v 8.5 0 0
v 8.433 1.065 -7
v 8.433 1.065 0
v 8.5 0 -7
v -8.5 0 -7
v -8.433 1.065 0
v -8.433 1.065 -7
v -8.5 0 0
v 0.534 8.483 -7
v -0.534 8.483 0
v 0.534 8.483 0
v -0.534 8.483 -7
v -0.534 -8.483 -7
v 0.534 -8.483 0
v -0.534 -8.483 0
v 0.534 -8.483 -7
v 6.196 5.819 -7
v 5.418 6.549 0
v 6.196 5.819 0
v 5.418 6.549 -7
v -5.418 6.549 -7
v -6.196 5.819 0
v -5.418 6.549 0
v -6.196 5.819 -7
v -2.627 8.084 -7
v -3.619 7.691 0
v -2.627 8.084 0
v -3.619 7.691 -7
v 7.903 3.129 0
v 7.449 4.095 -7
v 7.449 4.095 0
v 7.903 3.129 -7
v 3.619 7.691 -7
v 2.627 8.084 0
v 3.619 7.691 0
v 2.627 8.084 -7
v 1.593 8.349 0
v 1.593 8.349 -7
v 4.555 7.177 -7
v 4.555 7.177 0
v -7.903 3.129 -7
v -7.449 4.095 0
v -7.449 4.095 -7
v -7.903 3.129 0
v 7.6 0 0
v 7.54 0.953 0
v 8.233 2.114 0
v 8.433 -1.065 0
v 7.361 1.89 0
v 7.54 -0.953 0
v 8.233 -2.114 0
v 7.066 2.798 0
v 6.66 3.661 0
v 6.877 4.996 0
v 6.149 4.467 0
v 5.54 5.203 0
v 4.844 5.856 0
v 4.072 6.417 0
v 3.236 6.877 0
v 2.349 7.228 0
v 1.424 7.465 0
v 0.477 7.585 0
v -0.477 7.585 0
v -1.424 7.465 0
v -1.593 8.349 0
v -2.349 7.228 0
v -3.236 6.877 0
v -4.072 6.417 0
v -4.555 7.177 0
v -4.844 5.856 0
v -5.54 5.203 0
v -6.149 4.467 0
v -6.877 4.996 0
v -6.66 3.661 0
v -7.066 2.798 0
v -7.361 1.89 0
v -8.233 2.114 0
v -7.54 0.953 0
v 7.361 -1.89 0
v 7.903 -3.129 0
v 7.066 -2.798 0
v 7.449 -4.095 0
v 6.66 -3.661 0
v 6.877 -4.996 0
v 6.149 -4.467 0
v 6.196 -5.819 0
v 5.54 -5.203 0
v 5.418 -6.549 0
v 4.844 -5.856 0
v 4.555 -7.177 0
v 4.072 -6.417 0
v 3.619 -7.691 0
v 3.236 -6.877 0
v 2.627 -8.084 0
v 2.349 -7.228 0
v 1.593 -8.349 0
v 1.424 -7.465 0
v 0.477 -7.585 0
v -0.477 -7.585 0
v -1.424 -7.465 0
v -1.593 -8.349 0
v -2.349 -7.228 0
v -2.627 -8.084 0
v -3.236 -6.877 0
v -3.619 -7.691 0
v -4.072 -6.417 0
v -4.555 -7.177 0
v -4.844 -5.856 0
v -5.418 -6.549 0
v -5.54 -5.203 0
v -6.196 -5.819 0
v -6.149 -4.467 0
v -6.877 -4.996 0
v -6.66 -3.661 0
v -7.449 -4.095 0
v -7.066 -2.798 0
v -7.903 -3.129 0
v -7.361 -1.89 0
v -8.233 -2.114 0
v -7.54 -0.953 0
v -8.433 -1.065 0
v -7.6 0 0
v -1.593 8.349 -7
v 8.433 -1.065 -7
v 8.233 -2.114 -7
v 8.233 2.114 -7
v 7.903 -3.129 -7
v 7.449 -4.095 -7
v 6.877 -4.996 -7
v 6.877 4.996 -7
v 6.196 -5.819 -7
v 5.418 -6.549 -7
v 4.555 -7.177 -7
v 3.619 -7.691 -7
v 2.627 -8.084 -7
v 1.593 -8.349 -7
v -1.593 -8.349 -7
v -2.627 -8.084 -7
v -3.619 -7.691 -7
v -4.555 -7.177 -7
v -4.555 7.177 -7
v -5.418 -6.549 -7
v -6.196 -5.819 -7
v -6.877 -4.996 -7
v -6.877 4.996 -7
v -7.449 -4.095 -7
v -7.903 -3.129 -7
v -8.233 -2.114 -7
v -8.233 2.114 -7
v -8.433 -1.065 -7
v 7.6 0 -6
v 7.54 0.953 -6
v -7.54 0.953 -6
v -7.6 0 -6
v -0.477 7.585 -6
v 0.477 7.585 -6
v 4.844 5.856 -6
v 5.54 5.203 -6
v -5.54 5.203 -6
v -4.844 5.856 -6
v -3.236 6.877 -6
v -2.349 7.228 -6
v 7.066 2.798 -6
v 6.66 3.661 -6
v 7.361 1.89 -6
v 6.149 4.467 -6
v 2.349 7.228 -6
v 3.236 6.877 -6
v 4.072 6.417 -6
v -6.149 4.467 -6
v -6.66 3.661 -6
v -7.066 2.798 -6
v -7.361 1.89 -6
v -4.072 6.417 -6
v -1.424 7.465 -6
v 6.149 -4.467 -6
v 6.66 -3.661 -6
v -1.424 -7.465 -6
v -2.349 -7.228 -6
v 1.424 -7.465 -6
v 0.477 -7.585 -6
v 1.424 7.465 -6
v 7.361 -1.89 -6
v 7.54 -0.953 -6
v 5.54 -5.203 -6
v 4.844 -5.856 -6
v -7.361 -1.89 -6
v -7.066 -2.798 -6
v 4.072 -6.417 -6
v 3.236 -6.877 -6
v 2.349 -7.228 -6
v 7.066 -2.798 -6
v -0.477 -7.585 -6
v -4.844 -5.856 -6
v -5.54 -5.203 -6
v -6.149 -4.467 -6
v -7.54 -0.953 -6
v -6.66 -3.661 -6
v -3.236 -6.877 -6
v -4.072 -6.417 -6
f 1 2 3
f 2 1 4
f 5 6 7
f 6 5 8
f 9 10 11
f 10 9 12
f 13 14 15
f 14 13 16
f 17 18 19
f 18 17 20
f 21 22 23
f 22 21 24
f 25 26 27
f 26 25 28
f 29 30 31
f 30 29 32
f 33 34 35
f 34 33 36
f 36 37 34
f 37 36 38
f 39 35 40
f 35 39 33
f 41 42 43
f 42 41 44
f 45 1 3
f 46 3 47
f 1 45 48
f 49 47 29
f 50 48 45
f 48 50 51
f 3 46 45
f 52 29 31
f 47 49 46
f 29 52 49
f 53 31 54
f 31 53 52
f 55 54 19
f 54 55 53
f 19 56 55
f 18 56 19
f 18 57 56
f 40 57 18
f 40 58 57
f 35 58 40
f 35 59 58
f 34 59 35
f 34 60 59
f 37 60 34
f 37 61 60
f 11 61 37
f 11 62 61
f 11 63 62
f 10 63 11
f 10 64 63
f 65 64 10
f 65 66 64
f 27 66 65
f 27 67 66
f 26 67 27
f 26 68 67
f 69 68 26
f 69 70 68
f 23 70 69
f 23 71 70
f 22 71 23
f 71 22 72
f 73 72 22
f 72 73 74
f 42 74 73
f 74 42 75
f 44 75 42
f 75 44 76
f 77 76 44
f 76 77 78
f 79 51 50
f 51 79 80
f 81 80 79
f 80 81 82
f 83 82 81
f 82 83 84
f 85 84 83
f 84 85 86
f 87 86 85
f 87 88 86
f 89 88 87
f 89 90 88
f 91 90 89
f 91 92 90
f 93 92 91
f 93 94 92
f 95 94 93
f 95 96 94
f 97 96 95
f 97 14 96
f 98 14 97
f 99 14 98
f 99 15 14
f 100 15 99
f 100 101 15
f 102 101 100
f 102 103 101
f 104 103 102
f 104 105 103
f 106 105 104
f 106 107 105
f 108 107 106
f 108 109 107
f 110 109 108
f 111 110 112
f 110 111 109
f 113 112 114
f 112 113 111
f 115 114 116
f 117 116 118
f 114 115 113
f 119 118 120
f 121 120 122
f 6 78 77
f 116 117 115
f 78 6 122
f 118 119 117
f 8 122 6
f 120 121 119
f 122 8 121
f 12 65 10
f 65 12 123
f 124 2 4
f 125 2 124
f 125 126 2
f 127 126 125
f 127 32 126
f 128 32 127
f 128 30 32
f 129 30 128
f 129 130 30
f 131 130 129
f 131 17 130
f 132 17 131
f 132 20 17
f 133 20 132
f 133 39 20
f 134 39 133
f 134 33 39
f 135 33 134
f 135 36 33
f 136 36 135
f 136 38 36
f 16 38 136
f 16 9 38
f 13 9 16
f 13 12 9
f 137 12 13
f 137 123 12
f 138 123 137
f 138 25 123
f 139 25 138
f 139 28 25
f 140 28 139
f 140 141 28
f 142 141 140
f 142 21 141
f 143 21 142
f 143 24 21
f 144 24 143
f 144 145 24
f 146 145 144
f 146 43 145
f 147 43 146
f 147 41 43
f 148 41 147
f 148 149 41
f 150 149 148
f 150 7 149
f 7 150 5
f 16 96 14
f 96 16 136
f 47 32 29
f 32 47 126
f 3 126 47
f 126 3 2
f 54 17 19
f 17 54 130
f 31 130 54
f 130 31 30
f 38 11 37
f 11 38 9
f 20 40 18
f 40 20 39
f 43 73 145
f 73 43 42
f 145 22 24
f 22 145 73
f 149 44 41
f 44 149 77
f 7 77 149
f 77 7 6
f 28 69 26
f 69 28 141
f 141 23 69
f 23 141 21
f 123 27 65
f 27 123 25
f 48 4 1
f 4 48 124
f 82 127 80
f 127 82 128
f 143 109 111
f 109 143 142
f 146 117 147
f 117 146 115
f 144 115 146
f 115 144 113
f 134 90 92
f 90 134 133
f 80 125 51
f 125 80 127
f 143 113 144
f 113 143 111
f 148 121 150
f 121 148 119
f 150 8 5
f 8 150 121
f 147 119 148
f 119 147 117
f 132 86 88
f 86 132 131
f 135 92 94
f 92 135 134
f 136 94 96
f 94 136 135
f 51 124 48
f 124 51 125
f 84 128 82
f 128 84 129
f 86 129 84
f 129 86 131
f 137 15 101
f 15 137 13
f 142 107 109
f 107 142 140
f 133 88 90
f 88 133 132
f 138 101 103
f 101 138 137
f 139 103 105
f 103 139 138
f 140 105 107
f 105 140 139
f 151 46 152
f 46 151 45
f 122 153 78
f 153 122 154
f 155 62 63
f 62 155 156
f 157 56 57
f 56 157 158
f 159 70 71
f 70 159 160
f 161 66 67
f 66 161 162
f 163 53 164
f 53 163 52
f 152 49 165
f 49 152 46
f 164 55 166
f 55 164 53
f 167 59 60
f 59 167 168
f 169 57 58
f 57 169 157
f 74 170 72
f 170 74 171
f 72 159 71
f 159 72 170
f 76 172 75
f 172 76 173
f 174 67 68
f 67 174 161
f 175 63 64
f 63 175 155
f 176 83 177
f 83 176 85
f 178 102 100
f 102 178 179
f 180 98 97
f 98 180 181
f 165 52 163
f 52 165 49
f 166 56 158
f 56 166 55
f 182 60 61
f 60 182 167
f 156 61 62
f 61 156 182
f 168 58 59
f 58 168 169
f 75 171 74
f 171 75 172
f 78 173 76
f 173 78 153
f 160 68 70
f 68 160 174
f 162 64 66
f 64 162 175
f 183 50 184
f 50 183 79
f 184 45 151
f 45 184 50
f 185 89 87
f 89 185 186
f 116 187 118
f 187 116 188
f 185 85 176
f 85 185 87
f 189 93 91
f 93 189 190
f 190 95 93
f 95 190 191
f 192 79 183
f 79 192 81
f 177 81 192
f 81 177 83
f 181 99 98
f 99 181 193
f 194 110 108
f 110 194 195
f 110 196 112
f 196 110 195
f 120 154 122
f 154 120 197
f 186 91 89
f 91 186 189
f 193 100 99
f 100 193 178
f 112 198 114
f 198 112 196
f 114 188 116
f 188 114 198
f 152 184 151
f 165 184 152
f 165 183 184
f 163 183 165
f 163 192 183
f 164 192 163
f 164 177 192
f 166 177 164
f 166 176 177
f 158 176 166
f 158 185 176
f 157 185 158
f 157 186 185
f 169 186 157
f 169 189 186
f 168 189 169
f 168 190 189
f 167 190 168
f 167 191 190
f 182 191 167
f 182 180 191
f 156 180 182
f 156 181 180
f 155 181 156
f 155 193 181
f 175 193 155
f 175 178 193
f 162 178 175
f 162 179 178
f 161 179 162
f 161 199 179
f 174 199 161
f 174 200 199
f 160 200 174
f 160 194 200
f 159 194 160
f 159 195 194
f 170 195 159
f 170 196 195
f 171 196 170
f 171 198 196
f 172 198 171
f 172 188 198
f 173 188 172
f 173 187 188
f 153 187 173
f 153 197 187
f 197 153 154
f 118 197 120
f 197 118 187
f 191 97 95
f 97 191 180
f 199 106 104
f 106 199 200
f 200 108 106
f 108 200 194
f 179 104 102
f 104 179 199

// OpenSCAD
$fn = 50;


difference() {
	union() {
		translate(v = [0, 0, -7.0000000000]) {
			cylinder(h = 7, r = 8.5000000000);
		}
	}
	union() {
		#translate(v = [0, 0, -6.0000000000]) {
			cylinder(h = 6, r = 7.6000000000);
		}
	}
}
